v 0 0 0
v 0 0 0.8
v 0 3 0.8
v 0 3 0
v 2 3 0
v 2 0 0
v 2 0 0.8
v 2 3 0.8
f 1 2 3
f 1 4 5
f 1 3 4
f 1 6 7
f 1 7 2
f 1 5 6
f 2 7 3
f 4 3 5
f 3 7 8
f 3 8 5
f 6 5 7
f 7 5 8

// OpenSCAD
/* Warning, this is a very basic generator with a lot of approximation 
input data : [TDFN, 8QX, 2x3x0.8mm, 8, , A, C04-00382A]
generated by com.zoubworld.electronics.cad.model3d.Basic
Date : Sun Feb 15 10:50:48 CET 2026
*/

//body
color("black")
translate([0,0,0])
cube([2.0,3.0,0.8], center=false);
